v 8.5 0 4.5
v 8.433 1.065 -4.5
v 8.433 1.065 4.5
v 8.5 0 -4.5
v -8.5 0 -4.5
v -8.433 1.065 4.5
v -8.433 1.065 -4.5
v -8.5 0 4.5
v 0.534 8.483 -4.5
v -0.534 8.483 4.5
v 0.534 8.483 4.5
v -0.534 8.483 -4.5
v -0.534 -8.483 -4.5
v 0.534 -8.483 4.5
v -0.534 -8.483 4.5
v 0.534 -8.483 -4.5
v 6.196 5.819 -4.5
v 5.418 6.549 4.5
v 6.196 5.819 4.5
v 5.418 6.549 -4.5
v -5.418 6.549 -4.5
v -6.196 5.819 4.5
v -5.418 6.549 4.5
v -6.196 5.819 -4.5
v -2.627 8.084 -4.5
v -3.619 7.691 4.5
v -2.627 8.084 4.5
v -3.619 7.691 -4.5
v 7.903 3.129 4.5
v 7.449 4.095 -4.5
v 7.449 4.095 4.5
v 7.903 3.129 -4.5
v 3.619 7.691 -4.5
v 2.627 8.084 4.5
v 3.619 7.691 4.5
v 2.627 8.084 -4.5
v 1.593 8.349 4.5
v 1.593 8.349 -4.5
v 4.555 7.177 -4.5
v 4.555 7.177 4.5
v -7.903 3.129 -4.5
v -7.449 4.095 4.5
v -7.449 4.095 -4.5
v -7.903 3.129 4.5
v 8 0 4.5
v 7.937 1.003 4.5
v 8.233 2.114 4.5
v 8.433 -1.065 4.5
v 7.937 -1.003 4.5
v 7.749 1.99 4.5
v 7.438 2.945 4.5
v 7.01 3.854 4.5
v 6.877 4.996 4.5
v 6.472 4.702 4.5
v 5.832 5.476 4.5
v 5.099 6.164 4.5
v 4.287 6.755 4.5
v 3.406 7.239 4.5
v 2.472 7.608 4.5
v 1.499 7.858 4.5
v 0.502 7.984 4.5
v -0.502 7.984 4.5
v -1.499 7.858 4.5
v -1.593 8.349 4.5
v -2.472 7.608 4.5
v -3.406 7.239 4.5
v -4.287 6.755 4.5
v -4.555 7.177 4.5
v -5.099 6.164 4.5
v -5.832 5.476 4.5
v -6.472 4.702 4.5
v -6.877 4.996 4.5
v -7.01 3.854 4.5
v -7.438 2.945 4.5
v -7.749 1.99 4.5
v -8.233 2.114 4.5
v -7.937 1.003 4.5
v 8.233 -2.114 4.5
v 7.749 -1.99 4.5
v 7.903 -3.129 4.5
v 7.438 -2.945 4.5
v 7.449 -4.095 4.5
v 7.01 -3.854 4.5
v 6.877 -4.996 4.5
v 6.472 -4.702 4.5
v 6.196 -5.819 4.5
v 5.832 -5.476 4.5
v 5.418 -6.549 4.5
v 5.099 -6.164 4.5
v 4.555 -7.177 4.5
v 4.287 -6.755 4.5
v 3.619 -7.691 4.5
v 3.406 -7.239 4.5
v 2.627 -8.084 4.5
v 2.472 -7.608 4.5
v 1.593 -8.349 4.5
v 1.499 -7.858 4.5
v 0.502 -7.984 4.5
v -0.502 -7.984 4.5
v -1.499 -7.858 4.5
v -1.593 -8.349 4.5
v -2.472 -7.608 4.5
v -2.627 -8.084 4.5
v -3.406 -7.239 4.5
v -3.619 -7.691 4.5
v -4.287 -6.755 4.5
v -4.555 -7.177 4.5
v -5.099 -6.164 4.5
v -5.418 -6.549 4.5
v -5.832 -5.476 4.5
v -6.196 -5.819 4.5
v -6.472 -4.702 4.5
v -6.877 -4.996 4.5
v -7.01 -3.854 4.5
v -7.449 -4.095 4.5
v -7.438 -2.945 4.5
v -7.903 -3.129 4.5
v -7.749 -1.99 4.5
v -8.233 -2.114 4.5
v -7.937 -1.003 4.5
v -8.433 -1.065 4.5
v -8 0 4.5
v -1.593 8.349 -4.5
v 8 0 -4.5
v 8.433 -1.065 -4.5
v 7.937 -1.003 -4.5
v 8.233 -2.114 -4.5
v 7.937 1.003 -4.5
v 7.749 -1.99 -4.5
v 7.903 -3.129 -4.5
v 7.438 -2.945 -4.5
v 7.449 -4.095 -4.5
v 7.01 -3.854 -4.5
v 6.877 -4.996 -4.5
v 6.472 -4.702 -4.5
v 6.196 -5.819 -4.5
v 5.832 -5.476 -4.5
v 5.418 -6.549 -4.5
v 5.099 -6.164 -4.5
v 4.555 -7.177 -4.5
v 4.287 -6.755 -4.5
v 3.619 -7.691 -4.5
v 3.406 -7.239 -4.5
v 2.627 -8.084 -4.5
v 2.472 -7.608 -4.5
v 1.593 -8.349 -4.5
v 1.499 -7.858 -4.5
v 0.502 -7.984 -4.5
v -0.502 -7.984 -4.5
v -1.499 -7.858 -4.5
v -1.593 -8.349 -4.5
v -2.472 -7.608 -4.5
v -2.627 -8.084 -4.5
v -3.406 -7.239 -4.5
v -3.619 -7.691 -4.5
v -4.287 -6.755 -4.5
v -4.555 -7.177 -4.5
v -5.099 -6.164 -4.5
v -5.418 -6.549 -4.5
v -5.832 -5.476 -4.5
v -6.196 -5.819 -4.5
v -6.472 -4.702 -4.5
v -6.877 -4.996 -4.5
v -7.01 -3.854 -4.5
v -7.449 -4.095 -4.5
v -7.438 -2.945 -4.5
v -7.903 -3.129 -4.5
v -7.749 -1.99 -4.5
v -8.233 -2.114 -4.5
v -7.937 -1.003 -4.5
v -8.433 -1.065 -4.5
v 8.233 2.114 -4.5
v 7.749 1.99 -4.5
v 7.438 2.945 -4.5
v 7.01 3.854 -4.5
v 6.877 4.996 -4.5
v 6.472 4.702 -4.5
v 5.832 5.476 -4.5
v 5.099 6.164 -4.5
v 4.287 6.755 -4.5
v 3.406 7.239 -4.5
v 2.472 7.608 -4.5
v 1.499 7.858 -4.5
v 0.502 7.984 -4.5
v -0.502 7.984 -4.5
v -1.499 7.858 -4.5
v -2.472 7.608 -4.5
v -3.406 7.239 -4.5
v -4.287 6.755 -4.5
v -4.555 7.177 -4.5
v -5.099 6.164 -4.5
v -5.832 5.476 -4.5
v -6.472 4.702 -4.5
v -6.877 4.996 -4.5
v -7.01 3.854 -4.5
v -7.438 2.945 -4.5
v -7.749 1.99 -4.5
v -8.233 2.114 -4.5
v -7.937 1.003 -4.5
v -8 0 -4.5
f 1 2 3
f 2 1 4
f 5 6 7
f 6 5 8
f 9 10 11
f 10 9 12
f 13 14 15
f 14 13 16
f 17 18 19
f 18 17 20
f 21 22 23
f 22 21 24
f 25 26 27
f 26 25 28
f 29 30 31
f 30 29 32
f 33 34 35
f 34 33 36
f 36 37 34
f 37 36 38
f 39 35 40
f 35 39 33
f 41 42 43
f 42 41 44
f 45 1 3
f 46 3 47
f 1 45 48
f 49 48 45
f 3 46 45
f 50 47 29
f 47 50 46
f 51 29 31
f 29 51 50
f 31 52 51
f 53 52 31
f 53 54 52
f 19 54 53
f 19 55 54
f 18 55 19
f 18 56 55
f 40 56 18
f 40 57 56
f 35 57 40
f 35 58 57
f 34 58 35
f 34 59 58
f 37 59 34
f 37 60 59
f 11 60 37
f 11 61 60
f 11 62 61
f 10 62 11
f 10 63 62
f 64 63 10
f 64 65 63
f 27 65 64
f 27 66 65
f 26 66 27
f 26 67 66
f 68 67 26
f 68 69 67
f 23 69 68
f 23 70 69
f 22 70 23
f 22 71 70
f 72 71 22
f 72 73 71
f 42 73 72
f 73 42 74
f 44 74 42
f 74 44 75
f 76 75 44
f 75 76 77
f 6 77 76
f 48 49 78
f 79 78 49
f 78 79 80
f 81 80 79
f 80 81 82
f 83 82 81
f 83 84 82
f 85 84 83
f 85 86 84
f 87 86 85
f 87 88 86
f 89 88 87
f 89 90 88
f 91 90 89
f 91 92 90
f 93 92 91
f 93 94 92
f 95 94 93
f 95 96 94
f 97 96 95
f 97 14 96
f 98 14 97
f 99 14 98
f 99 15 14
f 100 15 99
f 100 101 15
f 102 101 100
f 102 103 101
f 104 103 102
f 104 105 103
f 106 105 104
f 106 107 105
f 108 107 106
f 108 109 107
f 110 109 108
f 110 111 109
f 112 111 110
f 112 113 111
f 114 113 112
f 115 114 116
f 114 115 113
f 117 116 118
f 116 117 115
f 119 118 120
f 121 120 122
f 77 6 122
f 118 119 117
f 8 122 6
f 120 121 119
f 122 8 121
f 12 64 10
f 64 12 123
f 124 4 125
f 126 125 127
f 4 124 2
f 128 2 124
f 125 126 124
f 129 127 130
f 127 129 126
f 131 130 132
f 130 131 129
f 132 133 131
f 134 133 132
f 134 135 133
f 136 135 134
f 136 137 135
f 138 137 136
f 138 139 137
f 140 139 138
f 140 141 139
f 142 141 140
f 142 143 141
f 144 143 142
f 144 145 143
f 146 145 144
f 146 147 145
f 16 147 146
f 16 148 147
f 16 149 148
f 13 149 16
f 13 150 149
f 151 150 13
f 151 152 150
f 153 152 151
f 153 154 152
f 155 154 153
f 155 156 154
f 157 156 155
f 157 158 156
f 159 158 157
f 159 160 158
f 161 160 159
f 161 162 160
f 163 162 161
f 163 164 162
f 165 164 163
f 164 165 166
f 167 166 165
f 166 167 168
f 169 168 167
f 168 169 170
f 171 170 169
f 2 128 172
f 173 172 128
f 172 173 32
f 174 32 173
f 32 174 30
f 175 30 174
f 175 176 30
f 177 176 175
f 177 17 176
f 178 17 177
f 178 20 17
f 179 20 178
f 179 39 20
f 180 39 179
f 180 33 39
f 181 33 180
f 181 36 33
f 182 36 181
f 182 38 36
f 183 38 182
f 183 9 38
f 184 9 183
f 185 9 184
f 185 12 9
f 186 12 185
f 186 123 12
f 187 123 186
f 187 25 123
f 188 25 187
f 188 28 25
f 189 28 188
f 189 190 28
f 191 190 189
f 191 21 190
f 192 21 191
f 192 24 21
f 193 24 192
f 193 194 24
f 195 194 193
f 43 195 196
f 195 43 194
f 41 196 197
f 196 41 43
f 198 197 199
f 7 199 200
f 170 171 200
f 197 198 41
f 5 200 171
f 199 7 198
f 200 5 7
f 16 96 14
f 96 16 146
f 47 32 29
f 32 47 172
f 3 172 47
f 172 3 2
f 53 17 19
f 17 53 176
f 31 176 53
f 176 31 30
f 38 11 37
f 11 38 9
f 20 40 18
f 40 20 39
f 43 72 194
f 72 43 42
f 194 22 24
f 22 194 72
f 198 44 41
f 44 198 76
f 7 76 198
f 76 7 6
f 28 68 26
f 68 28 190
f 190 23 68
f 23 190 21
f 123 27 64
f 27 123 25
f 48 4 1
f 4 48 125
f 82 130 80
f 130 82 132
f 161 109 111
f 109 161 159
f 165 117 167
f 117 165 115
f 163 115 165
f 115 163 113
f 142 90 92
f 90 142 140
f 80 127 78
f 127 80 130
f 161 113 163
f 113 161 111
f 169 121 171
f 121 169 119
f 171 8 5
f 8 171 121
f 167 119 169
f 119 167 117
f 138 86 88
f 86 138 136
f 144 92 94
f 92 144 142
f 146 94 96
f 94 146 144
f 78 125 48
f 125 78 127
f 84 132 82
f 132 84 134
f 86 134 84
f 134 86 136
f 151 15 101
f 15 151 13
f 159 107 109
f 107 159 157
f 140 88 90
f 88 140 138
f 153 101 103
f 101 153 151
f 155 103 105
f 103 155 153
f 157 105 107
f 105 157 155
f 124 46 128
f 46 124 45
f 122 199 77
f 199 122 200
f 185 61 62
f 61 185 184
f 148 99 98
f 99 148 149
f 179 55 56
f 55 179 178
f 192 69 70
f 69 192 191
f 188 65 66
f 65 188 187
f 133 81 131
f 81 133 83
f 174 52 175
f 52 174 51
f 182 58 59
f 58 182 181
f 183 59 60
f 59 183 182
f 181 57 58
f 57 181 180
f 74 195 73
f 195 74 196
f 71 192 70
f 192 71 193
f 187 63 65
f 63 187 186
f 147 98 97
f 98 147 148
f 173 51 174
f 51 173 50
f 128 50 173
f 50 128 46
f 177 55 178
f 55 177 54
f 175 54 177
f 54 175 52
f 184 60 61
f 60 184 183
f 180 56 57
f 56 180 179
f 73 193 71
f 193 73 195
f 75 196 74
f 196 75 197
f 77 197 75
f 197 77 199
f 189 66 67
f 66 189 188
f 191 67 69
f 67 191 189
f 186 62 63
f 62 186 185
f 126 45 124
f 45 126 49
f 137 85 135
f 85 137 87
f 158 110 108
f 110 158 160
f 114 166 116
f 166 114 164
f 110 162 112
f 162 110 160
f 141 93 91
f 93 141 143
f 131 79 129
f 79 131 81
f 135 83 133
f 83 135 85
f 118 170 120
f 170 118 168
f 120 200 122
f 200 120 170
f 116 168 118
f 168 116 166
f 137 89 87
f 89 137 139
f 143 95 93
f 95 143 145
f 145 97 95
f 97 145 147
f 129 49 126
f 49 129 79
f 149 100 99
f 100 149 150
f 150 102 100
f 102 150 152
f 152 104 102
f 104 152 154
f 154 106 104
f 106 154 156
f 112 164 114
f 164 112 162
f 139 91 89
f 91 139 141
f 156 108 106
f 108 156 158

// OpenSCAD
$fn = 50;


difference() {
	union() {
		translate(v = [0, 0, -4.5000000000]) {
			cylinder(h = 9, r = 8.5000000000);
		}
	}
	union() {
		translate(v = [0, 0, -100.0000000000]) {
			cylinder(h = 200, r = 8);
		}
	}
}
